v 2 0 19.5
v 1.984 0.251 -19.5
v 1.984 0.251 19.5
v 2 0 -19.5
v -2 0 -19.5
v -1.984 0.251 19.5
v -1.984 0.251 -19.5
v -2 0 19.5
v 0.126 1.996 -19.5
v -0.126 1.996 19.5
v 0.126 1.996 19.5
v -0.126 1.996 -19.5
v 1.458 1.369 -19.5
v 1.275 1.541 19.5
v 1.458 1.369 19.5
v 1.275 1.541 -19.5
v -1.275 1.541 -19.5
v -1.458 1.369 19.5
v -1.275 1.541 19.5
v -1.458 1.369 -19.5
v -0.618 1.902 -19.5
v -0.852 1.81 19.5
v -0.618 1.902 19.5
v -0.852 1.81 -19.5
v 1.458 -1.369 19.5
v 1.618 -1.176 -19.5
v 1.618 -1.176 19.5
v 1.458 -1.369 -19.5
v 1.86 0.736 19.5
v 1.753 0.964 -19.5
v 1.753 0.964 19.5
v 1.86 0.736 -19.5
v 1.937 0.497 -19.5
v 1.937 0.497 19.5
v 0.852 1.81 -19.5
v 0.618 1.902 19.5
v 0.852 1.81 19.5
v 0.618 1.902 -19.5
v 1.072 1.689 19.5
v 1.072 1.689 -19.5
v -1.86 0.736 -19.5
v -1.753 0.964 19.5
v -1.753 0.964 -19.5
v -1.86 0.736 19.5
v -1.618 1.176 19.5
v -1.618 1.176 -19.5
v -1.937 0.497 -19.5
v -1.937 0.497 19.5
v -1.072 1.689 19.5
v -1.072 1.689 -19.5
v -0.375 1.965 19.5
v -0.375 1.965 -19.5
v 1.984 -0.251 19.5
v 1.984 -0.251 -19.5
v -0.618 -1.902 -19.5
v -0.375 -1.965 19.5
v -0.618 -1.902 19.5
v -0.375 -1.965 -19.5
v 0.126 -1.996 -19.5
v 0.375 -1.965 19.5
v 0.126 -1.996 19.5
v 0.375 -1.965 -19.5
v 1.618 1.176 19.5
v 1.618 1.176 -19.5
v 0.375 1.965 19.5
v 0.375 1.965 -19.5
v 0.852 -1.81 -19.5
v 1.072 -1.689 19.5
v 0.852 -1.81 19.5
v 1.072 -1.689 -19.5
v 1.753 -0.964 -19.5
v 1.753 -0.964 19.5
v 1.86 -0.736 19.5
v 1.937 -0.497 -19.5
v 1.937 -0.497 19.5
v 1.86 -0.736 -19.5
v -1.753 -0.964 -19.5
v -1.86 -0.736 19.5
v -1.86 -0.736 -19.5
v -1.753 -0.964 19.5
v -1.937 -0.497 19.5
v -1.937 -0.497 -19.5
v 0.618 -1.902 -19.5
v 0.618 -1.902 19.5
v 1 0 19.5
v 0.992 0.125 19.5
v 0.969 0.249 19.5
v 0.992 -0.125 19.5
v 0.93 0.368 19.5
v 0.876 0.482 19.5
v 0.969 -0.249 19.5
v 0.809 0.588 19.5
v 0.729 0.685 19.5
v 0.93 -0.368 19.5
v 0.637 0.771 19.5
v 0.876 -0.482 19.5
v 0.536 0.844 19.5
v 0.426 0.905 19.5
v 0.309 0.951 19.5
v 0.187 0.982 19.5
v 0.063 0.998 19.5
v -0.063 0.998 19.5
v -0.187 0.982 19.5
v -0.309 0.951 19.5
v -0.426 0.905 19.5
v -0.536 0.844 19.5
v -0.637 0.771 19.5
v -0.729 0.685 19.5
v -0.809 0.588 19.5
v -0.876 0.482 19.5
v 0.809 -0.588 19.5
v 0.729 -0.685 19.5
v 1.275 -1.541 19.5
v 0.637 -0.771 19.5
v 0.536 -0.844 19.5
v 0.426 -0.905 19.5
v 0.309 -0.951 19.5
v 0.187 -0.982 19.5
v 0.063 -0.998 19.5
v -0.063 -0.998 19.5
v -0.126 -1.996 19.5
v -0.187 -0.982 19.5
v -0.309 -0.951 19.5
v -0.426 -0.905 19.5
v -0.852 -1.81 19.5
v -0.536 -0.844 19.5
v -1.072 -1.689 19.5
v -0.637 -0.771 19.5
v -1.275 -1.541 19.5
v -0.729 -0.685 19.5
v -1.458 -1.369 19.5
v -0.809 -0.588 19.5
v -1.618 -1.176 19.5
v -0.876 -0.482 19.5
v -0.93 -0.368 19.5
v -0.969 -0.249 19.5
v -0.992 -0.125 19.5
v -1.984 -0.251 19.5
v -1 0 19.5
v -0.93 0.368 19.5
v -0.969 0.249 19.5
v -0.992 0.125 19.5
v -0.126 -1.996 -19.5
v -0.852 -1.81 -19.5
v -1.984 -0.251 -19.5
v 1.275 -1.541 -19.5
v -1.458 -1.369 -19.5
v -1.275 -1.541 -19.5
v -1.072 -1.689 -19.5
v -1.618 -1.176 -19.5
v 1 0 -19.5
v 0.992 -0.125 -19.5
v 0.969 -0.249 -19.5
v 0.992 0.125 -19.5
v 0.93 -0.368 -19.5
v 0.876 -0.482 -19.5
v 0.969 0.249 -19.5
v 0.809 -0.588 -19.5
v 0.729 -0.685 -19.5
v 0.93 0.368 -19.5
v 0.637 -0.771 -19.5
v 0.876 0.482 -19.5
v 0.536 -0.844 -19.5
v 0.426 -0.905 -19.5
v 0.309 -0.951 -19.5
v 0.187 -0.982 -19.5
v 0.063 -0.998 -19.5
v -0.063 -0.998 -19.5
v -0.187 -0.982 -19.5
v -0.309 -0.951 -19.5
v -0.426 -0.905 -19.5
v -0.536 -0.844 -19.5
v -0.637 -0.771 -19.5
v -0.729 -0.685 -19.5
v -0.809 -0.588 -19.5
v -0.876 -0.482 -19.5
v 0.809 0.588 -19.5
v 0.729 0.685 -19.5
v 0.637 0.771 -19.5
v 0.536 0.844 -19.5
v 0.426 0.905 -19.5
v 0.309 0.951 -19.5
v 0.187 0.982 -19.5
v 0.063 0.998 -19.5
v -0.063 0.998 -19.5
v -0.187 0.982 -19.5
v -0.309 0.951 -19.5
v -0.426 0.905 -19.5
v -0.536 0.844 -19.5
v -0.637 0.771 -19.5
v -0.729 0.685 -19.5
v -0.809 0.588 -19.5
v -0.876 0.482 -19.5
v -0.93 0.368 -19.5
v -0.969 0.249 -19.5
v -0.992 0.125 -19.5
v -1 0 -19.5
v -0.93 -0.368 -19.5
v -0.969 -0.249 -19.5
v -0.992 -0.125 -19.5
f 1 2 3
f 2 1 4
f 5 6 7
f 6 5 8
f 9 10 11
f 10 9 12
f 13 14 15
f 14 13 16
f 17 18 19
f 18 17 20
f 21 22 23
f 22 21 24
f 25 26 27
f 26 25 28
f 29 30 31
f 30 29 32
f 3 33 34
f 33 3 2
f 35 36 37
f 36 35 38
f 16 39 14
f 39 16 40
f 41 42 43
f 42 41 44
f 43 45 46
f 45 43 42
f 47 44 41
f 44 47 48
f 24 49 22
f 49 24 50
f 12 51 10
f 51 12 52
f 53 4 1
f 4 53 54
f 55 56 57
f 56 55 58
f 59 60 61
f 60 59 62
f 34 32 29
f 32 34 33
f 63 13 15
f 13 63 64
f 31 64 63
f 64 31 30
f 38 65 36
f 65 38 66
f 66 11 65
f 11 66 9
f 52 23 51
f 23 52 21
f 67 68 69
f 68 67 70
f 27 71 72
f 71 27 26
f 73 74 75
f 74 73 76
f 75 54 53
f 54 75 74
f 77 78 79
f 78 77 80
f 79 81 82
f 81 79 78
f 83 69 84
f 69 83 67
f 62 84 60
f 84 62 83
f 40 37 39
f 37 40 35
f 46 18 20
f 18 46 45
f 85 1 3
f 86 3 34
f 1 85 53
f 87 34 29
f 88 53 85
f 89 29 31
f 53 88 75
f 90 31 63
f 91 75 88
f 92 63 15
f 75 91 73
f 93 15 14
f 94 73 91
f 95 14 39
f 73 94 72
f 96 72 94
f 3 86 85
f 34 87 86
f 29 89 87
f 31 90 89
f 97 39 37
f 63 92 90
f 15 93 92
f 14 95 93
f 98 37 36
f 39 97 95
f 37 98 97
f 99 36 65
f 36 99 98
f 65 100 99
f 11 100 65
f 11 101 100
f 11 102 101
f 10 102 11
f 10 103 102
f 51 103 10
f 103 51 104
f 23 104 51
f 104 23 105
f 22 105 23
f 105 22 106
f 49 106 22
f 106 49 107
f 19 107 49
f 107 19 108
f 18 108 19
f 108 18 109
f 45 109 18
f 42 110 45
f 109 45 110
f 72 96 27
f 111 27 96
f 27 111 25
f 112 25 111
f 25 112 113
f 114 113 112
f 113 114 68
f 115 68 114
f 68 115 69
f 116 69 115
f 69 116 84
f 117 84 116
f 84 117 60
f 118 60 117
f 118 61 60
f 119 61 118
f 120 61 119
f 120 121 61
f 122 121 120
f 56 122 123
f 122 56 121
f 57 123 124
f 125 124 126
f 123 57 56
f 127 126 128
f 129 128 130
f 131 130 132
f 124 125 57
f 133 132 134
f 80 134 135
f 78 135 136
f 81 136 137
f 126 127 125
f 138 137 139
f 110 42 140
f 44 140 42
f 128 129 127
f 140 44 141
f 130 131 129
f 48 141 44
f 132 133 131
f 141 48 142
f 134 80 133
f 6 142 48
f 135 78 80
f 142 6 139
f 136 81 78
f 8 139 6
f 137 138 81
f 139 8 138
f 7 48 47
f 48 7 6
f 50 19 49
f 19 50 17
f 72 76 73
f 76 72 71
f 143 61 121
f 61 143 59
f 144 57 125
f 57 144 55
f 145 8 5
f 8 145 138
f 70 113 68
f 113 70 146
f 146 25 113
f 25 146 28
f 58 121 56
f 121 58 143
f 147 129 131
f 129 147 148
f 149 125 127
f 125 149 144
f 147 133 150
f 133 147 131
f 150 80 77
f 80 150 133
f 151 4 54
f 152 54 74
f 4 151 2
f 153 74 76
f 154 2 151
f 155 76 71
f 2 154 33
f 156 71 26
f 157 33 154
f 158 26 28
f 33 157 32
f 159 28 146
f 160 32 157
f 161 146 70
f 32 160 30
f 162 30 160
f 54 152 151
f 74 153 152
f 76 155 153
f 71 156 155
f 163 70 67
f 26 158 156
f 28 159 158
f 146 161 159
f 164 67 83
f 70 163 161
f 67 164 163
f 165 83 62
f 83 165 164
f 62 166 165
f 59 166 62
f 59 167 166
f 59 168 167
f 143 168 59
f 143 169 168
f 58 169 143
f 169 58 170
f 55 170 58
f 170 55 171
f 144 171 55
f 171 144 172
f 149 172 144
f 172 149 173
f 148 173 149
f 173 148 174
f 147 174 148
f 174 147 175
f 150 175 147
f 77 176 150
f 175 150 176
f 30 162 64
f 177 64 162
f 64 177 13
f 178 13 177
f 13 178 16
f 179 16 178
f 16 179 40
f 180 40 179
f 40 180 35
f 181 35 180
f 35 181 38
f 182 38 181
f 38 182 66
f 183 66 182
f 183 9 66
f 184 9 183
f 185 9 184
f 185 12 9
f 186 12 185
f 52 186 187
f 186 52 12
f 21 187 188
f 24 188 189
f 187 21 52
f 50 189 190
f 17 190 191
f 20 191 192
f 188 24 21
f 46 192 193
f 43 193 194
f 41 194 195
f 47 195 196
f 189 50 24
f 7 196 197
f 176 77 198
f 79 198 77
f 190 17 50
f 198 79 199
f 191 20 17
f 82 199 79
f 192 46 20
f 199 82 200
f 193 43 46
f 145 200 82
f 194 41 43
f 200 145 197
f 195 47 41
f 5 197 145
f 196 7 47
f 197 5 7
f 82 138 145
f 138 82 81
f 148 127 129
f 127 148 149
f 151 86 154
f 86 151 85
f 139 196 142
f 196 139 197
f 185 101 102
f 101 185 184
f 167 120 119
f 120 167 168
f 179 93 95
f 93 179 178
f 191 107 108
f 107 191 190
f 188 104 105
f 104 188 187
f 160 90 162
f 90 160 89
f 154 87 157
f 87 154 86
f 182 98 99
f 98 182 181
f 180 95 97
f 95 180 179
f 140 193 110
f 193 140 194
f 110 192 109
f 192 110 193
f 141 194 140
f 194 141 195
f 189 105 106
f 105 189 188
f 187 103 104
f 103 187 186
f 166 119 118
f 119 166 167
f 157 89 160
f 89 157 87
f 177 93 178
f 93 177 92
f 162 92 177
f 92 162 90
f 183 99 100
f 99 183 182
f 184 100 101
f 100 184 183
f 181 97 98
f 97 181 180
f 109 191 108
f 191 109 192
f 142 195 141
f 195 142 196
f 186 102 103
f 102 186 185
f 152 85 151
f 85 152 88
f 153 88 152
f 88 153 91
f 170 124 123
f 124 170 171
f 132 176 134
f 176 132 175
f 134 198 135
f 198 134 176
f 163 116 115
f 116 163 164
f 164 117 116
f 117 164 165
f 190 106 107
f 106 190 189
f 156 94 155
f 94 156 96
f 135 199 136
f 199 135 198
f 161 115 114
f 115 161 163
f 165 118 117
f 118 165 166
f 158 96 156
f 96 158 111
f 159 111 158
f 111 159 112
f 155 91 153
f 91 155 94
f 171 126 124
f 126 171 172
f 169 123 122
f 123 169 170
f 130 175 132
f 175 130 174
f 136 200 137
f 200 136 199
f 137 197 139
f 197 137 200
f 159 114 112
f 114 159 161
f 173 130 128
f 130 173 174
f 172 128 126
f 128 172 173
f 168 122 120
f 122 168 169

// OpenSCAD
$fn = 50;


difference() {
	union() {
		translate(v = [0, 0, -19.5000000000]) {
			cylinder(h = 39, r = 2.0000000000);
		}
	}
	union() {
		translate(v = [0, 0, -100.0000000000]) {
			cylinder(h = 200, r = 1.0000000000);
		}
	}
}
